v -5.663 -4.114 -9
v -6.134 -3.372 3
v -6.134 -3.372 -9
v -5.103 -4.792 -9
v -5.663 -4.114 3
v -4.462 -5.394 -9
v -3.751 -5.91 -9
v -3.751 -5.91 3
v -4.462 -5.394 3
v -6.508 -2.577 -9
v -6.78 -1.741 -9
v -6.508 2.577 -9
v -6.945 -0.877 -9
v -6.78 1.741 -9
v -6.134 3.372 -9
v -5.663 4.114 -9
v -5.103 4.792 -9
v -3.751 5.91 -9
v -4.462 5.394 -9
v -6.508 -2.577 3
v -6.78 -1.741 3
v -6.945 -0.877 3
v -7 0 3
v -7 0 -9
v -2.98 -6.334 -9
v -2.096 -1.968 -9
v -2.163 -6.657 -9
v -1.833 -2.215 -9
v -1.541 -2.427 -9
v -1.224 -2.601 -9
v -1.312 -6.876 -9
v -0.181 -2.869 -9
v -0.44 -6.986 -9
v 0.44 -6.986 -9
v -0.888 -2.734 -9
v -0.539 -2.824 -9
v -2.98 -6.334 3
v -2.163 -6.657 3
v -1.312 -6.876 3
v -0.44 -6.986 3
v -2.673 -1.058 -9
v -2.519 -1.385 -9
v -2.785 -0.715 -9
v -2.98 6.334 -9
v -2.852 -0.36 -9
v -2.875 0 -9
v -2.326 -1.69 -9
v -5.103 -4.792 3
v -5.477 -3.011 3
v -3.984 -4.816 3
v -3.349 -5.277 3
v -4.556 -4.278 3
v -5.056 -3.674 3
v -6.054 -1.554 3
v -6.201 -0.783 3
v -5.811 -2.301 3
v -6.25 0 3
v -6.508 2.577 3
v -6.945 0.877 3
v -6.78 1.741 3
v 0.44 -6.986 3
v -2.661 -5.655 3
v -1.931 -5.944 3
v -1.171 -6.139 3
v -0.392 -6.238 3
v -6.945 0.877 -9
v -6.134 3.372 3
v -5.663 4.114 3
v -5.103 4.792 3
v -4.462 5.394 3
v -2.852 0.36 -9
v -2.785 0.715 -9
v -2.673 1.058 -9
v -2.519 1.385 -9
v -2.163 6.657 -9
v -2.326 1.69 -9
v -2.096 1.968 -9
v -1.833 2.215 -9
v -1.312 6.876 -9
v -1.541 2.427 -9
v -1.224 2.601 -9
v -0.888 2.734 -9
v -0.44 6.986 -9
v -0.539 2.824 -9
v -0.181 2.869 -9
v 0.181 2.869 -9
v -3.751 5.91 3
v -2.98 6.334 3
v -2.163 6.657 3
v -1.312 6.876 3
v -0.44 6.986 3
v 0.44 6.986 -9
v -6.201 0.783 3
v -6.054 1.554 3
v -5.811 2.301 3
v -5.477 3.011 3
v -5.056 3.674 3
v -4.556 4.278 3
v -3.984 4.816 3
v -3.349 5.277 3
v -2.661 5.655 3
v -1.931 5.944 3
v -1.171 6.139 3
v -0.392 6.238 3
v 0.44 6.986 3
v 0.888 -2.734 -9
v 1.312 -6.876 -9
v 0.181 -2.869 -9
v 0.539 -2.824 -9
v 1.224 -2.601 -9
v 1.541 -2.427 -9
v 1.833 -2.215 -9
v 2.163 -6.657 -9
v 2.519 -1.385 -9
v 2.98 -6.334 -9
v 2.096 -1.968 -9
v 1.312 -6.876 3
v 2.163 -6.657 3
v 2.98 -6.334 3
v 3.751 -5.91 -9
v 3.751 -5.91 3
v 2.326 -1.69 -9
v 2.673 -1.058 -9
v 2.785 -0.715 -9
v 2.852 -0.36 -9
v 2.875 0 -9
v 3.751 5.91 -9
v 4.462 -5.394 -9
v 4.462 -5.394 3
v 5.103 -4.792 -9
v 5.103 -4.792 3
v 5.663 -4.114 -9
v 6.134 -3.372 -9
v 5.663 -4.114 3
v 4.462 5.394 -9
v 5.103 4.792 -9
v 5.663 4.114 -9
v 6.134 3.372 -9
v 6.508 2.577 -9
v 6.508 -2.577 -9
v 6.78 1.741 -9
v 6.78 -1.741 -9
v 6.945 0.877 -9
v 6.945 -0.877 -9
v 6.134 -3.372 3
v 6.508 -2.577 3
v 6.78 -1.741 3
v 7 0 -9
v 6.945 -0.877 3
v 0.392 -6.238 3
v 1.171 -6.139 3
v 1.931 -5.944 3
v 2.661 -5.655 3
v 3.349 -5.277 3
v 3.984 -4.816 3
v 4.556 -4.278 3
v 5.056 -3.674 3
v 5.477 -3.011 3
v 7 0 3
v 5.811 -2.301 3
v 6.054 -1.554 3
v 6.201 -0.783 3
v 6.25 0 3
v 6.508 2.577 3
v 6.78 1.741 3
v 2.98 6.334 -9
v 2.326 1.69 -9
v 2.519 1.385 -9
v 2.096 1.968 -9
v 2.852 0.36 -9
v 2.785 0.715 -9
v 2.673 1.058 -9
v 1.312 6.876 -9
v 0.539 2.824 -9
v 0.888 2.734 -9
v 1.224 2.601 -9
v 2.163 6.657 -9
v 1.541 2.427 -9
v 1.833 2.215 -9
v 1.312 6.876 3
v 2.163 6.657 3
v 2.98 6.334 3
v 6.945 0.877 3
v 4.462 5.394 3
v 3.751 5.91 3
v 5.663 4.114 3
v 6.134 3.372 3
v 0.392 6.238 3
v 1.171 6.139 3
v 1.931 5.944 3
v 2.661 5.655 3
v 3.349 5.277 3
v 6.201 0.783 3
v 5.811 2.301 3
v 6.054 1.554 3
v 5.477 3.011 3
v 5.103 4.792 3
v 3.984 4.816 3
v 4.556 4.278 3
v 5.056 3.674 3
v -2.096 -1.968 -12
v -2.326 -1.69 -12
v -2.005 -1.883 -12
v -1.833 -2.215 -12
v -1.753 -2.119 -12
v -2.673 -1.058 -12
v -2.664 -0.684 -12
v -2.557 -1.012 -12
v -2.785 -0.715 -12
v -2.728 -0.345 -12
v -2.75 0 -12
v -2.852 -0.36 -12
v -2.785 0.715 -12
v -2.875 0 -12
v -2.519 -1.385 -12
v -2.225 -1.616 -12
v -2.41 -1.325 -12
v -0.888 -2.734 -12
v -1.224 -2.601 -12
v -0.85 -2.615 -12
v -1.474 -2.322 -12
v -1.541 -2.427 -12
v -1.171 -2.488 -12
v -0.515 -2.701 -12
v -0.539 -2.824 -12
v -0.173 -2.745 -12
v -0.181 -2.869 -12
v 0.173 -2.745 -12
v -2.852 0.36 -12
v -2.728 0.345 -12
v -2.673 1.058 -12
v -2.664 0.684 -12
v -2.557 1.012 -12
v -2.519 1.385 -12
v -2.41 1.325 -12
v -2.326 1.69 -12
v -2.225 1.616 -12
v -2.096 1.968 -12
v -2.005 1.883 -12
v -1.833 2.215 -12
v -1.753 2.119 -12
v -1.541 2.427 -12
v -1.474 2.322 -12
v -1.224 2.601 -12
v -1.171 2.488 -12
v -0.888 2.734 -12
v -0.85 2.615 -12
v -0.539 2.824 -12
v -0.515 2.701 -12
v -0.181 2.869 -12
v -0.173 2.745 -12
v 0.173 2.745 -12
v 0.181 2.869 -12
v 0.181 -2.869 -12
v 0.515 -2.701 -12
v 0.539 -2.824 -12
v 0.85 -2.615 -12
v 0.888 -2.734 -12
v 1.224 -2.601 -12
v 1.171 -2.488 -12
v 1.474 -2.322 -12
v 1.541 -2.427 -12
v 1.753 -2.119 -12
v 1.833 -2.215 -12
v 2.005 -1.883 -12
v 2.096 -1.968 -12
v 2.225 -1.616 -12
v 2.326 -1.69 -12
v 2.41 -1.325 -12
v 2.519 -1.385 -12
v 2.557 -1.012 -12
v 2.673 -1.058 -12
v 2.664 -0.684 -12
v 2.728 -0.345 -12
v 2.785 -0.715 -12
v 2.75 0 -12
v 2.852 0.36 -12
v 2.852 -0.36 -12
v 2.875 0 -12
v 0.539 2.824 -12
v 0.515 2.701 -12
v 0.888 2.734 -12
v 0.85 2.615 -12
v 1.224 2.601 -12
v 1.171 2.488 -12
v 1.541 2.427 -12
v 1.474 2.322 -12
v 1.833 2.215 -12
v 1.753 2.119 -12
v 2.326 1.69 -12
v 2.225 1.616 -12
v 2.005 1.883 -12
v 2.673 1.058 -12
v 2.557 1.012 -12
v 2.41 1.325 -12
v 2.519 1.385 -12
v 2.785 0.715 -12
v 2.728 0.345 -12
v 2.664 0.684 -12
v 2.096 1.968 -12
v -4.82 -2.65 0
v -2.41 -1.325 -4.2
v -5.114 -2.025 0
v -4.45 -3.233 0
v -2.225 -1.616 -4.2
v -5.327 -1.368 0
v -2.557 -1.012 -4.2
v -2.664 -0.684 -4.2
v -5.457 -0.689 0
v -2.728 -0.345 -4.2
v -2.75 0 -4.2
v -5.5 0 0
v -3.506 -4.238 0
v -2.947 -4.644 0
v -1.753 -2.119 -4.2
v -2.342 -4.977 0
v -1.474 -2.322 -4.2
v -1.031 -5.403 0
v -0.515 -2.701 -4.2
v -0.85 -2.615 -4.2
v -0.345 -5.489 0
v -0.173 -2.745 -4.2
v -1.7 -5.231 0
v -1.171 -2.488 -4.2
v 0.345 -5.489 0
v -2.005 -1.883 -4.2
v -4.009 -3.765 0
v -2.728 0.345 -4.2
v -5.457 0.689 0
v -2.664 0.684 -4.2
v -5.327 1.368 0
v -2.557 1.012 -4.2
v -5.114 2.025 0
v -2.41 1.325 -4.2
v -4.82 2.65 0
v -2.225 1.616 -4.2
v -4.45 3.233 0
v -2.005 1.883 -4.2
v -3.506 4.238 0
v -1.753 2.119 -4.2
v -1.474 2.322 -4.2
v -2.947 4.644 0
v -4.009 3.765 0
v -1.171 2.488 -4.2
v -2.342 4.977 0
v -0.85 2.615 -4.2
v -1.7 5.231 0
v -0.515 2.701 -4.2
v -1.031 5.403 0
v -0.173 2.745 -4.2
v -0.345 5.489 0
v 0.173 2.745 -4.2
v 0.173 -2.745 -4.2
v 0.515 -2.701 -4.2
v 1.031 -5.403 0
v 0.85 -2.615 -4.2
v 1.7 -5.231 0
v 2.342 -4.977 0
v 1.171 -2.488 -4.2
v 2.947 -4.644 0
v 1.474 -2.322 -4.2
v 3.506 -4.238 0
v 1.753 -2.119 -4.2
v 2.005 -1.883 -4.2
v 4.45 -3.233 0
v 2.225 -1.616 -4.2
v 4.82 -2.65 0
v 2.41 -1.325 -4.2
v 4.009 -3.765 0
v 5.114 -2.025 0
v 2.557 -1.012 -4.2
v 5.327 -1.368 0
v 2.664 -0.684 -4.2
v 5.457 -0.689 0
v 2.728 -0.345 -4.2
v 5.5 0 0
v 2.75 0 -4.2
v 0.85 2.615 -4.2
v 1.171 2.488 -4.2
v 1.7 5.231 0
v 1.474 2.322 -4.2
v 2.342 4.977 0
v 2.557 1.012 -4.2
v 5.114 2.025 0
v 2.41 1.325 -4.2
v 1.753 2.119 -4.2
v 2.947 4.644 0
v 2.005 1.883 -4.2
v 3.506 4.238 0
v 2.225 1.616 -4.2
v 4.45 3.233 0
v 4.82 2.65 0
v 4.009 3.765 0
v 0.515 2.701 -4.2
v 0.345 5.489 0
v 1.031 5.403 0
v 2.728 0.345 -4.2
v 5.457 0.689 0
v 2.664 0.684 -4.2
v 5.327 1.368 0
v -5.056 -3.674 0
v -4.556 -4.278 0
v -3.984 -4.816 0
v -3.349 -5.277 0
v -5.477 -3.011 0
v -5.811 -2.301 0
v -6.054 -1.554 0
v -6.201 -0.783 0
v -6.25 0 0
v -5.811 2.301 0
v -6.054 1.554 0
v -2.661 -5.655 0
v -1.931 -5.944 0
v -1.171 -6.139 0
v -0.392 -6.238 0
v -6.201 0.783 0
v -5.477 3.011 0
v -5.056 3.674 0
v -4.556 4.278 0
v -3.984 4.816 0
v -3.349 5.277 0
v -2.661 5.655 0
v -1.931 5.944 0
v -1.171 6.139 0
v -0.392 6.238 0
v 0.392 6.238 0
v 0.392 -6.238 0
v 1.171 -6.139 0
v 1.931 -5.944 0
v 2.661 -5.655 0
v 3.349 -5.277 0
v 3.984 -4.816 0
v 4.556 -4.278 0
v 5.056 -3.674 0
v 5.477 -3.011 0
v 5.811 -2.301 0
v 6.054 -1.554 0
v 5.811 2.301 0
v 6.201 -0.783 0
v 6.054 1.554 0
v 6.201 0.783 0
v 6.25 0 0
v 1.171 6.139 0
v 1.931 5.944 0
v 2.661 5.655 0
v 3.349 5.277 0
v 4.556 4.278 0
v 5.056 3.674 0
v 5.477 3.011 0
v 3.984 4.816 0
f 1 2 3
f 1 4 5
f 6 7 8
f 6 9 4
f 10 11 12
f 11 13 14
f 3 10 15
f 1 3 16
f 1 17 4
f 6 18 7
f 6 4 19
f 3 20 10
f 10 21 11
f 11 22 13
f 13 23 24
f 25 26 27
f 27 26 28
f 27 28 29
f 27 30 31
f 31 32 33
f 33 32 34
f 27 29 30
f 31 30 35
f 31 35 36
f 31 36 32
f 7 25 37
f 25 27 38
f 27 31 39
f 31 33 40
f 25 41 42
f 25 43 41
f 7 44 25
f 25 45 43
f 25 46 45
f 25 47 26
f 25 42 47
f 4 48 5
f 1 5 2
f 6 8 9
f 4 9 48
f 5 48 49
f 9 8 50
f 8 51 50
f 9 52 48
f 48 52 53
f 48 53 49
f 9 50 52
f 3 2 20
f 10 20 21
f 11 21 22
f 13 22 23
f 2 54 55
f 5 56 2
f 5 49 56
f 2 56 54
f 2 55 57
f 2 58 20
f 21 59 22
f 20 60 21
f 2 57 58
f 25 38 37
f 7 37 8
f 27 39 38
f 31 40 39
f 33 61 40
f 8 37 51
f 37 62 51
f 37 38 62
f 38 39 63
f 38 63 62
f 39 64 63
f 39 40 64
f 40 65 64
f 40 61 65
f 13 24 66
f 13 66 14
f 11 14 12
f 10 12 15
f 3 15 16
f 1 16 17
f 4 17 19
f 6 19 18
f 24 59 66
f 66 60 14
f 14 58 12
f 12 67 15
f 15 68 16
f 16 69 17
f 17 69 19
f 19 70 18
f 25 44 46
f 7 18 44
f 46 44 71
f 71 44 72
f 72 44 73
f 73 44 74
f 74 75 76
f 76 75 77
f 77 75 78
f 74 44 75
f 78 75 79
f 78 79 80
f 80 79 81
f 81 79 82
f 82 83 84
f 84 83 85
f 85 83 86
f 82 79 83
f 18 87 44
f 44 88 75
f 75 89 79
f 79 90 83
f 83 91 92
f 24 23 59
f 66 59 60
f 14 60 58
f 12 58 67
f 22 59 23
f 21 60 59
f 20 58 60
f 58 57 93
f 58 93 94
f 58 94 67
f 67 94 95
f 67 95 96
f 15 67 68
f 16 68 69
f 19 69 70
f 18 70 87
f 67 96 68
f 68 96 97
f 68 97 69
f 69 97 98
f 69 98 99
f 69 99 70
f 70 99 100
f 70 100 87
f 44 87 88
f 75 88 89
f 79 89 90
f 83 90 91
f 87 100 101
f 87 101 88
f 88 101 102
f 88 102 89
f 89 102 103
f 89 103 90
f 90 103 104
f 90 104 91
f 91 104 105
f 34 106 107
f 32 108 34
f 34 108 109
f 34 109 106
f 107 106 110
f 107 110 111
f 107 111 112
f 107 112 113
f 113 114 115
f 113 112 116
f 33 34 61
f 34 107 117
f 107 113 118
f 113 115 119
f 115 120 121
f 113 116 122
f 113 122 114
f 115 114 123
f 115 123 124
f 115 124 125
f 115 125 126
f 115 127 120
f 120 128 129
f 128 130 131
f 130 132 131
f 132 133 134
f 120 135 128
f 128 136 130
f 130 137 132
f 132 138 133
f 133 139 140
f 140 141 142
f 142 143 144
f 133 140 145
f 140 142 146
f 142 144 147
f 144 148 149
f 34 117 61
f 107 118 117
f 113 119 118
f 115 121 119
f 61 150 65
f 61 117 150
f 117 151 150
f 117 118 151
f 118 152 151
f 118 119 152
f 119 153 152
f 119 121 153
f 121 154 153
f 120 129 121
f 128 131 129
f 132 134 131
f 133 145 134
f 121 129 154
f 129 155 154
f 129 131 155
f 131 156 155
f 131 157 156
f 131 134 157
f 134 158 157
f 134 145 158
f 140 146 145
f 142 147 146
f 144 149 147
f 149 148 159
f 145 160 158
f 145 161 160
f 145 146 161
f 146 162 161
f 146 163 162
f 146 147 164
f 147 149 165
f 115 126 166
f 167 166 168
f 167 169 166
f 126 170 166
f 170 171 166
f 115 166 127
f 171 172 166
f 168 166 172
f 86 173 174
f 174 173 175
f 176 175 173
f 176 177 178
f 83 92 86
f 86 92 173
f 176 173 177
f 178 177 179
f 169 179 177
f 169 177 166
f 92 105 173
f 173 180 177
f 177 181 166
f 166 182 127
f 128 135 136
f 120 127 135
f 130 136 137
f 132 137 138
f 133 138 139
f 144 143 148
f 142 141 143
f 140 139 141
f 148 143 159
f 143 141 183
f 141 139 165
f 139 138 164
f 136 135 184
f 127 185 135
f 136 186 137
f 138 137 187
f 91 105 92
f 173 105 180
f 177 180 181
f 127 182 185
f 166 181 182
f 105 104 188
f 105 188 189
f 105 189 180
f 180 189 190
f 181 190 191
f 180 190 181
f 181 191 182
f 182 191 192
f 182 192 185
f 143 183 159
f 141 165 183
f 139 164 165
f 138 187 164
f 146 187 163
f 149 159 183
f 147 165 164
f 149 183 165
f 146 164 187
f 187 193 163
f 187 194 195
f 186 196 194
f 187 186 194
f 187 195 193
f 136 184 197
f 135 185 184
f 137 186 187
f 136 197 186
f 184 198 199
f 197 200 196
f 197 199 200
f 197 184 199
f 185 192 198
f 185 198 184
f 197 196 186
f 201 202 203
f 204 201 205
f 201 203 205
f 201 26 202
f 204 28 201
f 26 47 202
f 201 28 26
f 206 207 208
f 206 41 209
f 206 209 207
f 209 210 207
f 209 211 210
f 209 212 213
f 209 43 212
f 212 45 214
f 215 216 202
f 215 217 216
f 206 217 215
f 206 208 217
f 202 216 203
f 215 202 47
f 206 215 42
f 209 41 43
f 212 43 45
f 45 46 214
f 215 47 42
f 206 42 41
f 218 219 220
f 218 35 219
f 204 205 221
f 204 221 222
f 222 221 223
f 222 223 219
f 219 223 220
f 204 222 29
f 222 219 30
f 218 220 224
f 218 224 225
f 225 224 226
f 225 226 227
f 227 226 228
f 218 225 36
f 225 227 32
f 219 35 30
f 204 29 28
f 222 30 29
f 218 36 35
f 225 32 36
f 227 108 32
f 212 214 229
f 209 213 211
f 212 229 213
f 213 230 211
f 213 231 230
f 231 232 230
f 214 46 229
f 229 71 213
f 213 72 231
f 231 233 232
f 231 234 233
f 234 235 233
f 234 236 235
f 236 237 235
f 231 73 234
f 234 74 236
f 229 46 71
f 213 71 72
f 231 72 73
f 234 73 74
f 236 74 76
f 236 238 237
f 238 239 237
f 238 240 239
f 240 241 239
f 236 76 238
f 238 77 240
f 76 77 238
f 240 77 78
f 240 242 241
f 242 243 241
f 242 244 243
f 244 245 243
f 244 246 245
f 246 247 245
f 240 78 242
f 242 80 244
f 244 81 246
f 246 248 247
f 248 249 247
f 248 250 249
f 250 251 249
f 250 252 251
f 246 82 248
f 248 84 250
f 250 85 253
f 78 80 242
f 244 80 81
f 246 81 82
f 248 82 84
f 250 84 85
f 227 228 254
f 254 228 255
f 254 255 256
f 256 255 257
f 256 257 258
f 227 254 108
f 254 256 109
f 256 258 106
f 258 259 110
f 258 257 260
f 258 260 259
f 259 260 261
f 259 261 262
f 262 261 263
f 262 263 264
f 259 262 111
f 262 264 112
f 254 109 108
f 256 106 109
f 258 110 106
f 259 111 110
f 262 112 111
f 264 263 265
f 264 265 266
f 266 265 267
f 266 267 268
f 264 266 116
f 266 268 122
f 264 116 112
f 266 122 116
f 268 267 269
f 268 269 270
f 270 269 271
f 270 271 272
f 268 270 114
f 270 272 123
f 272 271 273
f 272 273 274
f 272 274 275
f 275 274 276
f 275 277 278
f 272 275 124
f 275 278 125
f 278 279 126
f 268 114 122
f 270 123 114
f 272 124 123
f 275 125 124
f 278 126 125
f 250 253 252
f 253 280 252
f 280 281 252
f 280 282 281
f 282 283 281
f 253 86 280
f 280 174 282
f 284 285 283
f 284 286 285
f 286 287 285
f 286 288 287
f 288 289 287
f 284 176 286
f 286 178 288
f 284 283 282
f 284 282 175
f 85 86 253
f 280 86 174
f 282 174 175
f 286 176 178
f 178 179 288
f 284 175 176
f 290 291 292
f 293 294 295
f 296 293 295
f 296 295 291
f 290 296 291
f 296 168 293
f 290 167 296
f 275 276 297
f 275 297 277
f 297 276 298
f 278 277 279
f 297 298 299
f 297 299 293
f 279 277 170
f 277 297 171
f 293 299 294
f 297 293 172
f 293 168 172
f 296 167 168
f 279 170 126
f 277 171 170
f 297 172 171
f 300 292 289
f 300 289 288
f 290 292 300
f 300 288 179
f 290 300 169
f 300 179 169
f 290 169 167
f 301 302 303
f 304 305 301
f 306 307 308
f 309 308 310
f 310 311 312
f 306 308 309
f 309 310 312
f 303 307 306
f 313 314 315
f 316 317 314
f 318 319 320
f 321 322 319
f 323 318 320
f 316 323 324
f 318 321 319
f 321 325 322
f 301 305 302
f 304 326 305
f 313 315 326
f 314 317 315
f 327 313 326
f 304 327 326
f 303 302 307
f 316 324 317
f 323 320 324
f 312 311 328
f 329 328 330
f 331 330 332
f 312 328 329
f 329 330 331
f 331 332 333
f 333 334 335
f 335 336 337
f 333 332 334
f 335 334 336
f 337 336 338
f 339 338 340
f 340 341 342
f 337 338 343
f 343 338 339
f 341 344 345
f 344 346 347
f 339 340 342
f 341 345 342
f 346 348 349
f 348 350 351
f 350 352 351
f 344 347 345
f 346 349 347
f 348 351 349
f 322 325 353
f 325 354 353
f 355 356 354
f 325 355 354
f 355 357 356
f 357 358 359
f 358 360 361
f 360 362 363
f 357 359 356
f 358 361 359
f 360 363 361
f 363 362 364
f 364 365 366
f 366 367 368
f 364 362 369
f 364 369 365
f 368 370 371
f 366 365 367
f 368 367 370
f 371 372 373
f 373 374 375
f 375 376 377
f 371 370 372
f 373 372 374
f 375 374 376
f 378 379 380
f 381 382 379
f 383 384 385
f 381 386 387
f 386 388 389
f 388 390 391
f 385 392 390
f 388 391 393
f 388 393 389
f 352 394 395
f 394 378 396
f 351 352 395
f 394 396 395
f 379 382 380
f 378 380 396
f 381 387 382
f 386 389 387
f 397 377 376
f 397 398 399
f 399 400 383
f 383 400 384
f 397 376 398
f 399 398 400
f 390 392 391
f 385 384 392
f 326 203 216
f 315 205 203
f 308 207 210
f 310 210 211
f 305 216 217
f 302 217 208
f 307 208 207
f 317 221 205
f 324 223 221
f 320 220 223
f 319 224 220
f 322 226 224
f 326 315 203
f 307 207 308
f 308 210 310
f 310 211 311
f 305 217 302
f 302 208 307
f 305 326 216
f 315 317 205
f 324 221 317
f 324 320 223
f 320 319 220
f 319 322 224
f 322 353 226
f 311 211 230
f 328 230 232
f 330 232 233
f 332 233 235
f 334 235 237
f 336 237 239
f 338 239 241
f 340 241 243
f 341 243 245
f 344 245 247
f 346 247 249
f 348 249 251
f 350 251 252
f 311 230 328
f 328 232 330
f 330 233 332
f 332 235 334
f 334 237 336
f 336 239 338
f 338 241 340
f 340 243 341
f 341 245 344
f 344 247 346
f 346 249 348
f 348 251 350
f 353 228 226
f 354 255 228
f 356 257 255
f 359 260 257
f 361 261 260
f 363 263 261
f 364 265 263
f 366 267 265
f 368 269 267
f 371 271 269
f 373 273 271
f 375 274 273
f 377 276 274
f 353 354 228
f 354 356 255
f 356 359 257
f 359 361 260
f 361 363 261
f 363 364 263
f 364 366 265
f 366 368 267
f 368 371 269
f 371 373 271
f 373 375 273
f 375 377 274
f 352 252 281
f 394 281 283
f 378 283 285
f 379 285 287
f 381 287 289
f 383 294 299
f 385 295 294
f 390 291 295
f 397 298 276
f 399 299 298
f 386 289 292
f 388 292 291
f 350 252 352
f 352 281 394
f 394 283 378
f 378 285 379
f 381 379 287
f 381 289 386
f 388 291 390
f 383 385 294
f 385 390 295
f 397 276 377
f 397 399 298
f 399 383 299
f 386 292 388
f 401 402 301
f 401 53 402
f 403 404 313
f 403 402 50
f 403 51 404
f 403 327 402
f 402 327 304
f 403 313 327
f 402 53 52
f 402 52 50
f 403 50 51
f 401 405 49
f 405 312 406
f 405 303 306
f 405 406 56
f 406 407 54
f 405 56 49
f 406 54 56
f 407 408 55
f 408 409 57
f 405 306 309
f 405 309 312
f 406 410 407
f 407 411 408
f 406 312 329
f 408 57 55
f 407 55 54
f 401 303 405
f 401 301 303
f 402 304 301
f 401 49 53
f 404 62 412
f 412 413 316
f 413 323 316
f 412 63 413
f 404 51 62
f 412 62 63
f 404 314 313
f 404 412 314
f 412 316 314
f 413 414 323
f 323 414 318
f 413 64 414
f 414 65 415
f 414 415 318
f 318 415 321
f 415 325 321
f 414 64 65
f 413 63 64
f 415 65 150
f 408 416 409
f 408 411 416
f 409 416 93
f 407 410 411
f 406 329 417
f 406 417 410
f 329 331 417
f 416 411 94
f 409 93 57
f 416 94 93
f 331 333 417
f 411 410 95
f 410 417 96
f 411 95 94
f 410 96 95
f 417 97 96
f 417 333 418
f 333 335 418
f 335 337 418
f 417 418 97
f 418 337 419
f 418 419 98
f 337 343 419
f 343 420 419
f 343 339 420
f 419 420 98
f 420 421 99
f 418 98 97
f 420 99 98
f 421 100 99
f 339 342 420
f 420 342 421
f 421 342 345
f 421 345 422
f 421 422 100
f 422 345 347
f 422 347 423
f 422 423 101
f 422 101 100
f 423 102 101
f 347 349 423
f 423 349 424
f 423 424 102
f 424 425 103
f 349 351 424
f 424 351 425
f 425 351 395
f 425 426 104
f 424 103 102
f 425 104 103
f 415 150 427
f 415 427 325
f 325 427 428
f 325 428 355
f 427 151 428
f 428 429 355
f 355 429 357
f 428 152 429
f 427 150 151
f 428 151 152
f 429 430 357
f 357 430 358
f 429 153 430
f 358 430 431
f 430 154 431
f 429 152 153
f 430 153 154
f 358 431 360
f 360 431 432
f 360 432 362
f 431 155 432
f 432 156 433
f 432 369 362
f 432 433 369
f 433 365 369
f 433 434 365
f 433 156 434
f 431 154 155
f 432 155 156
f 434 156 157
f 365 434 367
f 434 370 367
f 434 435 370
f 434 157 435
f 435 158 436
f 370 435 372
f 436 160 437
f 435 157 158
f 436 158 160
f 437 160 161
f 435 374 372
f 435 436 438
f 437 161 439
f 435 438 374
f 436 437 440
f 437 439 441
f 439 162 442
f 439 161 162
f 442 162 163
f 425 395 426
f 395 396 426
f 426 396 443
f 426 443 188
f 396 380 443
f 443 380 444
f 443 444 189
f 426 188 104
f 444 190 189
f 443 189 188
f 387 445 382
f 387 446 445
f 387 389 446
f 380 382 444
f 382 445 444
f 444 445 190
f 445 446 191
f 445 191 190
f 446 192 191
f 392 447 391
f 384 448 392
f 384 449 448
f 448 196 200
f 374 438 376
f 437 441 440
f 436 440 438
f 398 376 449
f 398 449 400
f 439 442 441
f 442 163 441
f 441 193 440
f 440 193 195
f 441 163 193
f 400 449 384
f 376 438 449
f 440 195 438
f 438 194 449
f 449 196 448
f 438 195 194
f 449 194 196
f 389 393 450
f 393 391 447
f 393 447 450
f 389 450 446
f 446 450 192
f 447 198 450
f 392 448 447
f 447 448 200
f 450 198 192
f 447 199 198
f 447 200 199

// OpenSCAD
$fn = 50;


difference() {
	union() {
		translate(v = [0, 0, -9.0000000000]) {
			cylinder(h = 12, r = 7.0000000000);
		}
		#translate(v = [0, 0, -12.0000000000]) {
			cylinder(h = 12, r = 2.8750000000);
		}
	}
	union() {
		translate(v = [0, 0, 0]) {
			rotate(a = [0, 0, 0]) {
				difference() {
					union() {
						translate(v = [0, 0, -12.0000000000]) {
							cylinder(h = 12, r = 2.2500000000);
						}
						translate(v = [0, 0, -4.2000000000]) {
							cylinder(h = 4.2000000000, r1 = 2.7500000000, r2 = 5.5000000000);
						}
						translate(v = [0, 0, -12.0000000000]) {
							cylinder(h = 12, r = 2.7500000000);
						}
						translate(v = [0, 0, -12.0000000000]) {
							cylinder(h = 12, r = 2.2500000000);
						}
					}
					union();
				}
			}
		}
		#cylinder(h = 3, r = 6.2500000000);
	}
}
